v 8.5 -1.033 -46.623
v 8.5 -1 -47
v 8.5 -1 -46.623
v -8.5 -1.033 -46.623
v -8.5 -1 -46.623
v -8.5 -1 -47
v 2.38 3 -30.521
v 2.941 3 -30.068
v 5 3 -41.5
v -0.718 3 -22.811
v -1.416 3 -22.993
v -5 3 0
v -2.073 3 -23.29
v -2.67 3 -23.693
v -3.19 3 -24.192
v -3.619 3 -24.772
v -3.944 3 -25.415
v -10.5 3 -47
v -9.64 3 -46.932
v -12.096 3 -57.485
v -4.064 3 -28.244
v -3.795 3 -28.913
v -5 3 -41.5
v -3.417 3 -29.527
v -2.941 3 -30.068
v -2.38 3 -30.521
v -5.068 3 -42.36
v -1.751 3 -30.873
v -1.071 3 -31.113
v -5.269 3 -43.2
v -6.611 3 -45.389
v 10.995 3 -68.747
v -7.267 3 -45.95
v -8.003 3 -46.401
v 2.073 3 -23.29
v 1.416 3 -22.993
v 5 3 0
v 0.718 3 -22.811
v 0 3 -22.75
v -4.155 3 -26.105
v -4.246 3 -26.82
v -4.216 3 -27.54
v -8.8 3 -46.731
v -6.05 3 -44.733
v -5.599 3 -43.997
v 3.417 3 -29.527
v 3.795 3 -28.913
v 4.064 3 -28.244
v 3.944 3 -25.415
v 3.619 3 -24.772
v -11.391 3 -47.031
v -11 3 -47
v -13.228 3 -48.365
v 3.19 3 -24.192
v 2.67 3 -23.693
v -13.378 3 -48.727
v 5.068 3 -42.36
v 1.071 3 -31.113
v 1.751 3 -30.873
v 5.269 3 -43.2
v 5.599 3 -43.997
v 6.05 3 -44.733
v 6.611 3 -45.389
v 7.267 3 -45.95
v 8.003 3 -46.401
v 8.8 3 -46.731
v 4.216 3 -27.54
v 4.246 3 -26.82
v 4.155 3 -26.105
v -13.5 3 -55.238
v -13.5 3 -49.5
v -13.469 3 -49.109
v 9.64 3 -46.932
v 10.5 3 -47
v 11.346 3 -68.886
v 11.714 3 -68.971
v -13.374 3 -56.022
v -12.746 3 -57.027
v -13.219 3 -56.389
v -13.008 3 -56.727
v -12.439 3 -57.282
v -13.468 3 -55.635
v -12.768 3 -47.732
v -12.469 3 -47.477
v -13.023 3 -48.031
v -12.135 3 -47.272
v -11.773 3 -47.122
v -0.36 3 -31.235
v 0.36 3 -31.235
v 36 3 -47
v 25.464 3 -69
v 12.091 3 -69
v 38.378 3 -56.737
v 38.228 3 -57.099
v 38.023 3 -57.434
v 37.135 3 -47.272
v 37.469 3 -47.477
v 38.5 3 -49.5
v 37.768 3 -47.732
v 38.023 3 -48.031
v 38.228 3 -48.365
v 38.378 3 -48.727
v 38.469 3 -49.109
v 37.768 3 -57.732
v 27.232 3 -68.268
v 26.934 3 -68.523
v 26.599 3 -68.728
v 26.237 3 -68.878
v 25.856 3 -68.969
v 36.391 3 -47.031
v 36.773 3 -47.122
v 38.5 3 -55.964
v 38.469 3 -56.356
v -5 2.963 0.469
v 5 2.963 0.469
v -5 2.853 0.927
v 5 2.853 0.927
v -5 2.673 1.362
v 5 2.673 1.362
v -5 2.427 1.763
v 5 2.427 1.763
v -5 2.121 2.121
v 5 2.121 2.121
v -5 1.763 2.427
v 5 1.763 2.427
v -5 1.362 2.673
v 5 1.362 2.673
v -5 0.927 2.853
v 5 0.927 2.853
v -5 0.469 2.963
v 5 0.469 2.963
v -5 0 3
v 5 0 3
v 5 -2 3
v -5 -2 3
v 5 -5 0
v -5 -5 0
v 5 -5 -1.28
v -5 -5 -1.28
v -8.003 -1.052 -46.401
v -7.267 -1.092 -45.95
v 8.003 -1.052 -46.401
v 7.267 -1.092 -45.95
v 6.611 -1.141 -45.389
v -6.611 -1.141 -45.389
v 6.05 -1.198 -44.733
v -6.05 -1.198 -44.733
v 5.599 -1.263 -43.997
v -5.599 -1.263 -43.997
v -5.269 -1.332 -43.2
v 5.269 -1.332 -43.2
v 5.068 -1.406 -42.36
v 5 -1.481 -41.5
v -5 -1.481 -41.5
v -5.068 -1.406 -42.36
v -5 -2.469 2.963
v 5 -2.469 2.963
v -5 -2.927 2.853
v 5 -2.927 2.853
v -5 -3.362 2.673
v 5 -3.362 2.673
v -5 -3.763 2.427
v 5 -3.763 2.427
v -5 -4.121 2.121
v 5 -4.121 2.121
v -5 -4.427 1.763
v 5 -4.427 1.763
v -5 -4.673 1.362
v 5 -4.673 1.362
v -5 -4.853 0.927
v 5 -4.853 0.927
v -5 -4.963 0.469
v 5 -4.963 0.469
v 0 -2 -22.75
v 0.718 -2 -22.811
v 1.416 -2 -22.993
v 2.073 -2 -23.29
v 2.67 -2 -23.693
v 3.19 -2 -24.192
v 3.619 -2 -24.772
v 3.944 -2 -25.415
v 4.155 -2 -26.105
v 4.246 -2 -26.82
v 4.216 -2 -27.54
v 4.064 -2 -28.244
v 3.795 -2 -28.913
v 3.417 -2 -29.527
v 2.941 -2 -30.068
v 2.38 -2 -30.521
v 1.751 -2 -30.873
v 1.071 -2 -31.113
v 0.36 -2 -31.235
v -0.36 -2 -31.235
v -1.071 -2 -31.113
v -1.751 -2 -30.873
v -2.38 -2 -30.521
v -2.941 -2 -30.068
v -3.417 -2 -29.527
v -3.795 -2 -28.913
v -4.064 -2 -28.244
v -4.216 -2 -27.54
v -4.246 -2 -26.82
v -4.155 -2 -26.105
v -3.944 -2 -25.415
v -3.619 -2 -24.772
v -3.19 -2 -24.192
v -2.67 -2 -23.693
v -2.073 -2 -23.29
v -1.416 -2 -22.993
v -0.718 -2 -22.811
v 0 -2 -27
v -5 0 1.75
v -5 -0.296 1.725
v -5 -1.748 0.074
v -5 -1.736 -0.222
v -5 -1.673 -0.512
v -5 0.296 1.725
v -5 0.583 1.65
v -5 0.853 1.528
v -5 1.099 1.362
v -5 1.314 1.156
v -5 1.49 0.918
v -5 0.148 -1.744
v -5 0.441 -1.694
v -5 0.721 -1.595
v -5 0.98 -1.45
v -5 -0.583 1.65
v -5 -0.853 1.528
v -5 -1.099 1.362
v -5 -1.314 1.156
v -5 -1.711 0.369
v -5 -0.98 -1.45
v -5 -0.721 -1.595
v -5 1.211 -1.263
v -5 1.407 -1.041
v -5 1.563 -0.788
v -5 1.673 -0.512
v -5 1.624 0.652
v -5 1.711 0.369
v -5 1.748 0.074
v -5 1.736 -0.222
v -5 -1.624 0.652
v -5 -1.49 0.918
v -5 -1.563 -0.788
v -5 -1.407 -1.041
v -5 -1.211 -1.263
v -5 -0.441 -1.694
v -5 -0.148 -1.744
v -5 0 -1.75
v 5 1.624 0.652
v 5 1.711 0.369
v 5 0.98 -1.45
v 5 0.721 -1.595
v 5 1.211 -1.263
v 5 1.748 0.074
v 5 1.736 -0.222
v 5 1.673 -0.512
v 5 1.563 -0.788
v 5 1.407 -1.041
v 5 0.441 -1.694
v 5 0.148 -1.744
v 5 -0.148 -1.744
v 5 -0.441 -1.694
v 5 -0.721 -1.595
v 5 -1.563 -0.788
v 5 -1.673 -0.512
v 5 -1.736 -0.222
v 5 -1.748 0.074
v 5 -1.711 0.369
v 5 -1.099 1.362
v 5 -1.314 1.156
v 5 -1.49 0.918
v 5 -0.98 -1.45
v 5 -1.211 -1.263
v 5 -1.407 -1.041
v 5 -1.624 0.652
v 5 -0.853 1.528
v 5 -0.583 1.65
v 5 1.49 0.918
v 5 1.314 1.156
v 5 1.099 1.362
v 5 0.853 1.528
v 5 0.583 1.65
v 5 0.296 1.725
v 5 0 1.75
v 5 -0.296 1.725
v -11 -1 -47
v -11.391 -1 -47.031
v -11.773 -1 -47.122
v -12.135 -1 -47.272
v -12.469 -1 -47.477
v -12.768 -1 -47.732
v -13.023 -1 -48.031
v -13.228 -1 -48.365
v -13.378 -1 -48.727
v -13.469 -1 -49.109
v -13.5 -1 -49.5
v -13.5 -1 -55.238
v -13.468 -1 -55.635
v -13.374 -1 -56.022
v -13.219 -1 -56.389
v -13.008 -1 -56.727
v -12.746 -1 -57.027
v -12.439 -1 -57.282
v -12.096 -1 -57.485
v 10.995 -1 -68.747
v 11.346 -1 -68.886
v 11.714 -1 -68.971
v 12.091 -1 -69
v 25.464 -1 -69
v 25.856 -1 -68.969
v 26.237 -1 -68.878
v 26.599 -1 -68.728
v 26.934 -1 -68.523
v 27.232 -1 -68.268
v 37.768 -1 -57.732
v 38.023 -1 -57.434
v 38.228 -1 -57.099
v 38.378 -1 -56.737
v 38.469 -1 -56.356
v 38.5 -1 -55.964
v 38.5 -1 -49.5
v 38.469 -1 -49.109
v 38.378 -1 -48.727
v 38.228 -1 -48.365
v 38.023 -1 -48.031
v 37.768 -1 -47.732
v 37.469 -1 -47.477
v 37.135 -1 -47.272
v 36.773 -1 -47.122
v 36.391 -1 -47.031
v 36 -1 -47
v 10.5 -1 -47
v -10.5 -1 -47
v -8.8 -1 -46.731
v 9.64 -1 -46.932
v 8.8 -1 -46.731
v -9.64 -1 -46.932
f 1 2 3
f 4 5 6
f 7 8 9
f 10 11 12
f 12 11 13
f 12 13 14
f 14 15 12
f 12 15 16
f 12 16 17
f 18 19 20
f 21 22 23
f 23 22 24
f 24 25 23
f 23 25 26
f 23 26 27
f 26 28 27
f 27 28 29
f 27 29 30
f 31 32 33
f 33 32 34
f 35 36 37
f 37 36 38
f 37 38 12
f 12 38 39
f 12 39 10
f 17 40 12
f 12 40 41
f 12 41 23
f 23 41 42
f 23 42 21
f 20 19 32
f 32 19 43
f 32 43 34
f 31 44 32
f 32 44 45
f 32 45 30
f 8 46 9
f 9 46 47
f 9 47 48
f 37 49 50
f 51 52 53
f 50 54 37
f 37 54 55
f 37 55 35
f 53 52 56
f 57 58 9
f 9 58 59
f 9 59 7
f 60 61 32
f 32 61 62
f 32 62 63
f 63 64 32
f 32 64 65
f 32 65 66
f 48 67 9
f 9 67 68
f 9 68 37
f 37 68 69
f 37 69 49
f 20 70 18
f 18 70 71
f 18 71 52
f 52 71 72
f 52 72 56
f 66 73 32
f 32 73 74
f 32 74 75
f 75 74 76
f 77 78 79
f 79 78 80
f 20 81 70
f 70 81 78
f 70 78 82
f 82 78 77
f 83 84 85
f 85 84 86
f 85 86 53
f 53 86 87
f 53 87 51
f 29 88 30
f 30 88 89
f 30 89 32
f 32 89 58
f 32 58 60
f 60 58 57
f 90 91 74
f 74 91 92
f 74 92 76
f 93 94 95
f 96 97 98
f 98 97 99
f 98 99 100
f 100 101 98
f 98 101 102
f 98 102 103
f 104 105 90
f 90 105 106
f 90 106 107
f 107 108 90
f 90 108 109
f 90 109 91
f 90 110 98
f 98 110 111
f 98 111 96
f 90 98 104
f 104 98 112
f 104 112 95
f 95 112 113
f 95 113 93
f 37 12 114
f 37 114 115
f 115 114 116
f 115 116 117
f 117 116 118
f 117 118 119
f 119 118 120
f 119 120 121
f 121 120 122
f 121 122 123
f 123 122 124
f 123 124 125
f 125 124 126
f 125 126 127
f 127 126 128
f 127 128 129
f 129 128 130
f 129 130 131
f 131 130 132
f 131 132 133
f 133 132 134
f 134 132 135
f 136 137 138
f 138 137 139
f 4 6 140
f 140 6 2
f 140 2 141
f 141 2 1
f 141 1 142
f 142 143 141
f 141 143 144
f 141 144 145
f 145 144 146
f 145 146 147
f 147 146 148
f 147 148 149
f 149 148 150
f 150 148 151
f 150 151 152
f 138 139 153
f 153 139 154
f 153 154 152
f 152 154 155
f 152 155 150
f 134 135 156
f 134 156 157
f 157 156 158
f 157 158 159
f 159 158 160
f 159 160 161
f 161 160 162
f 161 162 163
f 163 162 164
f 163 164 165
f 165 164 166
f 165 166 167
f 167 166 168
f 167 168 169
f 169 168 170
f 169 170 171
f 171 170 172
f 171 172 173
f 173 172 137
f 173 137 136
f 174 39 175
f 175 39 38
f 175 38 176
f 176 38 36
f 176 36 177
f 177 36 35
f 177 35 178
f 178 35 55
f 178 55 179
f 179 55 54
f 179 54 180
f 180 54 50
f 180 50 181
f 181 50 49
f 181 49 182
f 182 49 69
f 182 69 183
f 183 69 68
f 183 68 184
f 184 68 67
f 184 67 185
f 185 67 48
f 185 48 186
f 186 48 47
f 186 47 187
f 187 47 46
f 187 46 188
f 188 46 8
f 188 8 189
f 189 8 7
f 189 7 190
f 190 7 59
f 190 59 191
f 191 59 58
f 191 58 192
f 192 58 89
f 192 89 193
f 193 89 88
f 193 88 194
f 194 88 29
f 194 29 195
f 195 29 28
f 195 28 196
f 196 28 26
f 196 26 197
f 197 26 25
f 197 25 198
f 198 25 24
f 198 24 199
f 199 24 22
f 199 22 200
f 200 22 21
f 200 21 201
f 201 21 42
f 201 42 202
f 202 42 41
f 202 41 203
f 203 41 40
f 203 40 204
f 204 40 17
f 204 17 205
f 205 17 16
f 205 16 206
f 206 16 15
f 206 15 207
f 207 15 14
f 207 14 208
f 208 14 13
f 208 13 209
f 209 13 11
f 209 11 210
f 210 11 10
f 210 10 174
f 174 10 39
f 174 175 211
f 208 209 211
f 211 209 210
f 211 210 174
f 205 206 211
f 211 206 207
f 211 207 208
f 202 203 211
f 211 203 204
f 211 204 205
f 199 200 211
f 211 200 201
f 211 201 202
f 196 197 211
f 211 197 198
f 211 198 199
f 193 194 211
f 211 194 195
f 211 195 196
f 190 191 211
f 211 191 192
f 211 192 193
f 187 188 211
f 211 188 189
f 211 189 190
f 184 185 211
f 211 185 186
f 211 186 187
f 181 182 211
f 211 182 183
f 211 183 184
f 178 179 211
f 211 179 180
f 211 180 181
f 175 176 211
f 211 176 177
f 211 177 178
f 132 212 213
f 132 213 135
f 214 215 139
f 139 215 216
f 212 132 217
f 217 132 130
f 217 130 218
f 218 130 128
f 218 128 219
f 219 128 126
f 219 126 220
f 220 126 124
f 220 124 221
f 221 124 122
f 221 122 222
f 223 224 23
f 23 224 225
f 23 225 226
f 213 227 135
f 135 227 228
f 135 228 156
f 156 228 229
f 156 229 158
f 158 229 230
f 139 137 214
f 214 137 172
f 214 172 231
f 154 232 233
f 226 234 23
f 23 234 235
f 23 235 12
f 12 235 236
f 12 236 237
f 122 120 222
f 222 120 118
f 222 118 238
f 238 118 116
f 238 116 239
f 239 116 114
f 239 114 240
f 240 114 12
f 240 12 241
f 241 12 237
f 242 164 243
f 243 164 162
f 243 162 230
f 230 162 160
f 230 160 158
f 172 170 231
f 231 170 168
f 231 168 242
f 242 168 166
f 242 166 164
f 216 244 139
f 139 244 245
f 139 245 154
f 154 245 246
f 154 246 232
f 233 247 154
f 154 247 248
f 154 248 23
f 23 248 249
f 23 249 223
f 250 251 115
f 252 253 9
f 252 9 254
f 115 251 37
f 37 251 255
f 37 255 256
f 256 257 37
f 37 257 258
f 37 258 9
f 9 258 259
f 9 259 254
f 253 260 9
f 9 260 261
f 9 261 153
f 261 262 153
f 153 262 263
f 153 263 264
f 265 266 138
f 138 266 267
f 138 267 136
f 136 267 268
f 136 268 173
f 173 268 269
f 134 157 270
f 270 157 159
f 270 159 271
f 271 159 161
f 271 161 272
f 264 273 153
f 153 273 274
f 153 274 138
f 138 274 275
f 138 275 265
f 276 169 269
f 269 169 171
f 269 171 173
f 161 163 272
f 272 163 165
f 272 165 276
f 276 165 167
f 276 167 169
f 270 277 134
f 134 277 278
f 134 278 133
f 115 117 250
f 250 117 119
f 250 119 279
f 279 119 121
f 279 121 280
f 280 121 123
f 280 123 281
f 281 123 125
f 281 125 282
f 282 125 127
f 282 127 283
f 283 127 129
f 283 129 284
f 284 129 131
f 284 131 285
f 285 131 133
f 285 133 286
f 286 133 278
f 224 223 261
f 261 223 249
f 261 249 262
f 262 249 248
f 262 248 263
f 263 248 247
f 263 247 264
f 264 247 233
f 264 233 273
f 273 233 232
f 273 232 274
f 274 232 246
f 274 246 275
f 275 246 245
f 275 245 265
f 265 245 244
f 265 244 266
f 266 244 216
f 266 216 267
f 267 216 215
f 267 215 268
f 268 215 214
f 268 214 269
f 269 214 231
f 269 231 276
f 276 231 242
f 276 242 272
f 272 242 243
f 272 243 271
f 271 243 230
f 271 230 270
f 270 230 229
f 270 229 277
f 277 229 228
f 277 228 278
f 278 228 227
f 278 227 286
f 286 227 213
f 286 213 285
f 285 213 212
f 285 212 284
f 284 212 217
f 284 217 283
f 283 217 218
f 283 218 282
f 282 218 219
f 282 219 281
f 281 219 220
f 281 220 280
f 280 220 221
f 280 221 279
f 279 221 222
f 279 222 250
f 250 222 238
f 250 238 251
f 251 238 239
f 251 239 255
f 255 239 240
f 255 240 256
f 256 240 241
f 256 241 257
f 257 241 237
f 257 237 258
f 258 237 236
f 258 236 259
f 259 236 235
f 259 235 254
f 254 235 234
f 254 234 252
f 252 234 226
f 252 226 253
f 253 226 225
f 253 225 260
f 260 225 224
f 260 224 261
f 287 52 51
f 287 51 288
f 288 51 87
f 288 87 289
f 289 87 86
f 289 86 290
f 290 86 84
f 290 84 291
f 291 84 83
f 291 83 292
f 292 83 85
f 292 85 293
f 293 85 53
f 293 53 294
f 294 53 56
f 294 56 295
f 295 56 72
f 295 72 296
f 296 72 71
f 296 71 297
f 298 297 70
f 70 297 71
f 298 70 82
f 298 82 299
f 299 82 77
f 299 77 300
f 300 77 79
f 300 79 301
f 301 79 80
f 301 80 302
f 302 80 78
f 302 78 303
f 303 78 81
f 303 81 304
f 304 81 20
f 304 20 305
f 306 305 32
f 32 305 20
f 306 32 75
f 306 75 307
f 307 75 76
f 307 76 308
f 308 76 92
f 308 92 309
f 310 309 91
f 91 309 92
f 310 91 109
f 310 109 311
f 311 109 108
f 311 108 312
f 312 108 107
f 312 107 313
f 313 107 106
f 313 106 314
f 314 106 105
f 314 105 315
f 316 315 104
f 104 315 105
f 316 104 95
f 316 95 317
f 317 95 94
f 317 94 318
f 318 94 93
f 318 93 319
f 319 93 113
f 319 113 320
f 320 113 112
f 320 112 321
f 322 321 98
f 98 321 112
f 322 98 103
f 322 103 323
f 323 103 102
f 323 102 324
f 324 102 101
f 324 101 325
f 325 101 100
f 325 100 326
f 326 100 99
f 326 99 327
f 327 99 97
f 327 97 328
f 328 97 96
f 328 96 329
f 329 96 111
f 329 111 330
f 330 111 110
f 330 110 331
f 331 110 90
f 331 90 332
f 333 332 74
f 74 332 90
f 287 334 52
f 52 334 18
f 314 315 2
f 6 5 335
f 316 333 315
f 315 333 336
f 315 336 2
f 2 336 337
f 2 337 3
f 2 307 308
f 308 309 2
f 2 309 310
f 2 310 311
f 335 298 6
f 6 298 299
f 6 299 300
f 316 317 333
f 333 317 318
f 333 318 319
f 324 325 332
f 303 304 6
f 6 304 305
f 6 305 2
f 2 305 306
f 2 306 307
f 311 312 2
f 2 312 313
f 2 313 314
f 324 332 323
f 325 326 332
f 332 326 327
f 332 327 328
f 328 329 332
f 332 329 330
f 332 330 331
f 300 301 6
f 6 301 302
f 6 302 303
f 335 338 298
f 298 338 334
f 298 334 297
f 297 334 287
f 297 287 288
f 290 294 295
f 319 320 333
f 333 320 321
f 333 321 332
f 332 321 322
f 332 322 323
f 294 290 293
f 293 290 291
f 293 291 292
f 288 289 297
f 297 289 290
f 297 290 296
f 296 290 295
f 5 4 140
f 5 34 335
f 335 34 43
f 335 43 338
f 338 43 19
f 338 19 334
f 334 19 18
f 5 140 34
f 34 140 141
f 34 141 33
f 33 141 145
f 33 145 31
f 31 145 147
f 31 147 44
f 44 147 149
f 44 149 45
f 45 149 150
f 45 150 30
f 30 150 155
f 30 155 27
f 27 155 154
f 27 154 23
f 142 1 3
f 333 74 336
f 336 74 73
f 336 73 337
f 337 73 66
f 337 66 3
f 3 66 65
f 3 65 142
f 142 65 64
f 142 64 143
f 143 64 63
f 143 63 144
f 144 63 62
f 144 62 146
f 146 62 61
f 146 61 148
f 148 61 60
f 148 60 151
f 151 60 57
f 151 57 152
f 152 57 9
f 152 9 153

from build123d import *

# Parameters (mm, degrees)
SKETCH1_R           = 1.75
BOSS_EXTRUDE1_DEPTH = 8.5
FILLET1_R           = 3
SKETCH3_R           = 4.25
CUT_EXTRUDE3_DEPTH  = 5
CUT_EXTRUDE4_REACH  = 50.428
BOSS_EXTRUDE2_DEPTH = 4
CUT_EXTRUDE5_REACH  = 81.418


with BuildPart() as part:
    # Sketch1 → Boss-Extrude1 (new, symmetric)
    with BuildSketch(Plane(origin=(0, 0, 0), x_dir=(0, 0, -1), z_dir=(1, 0, 0))):
        with BuildLine():
            ThreePointArc((0, 3), (-2.121320344, 2.121320344), (-3, 0))
            Line((-3, 0), (-3, -5))
            Line((-3, -5), (1.279790789, -5))
            Line((1.279790789, -5), (47, -1))
            Line((47, -1), (47, 3))
            Line((47, 3), (0, 3))
        make_face()
        Circle(SKETCH1_R, mode=Mode.SUBTRACT)
    extrude(amount=BOSS_EXTRUDE1_DEPTH, both=True)

    # Fillet1
    fillet1_edges = [part.edges().sort_by_distance(p)[0] for p in [
        (0, -5, 3),
    ]]
    fillet(fillet1_edges, radius=FILLET1_R)

    # Sketch3 → Cut-Extrude3 (cut)
    with BuildSketch(Plane(origin=(0, 3, 0), x_dir=(1, 0, 0), z_dir=(0, 1, 0))):
        with Locations(Location((0, 27, 0), (0, 0, 270))):
            Circle(SKETCH3_R)
    extrude(amount=-CUT_EXTRUDE3_DEPTH, mode=Mode.SUBTRACT)

    # Sketch4 → Cut-Extrude4 (cut, up to next)
    with BuildSketch(Plane(origin=(0, 3, 0), x_dir=(1, 0, 0), z_dir=(0, 1, 0)), mode=Mode.PRIVATE) as cut_extrude4_sk1:
        with BuildLine():
            Line((-8.5, -3), (-5, -3))
            Line((-5, -3), (-5, 32.6))
            ThreePointArc((-5, 32.6), (-5.995836944, 35.004163056), (-8.4, 36))
            Line((-8.4, 36), (-8.5, 36))
            Line((-8.5, 36), (-8.5, -3))
        make_face()
    cut_extrude4_tool1 = extrude(cut_extrude4_sk1.sketch, amount=-CUT_EXTRUDE4_REACH, mode=Mode.PRIVATE) & part.part
    # Sketch4 → Cut-Extrude4 (cut, up to next)
    with BuildSketch(Plane(origin=(0, 3, 0), x_dir=(1, 0, 0), z_dir=(0, 1, 0)), mode=Mode.PRIVATE) as cut_extrude4_sk2:
        with BuildLine():
            Line((8.4, 36), (8.5, 36))
            Line((8.5, 36), (8.5, -3))
            Line((8.5, -3), (5, -3))
            Line((5, -3), (5, 32.6))
            ThreePointArc((5, 32.6), (5.995836944, 35.004163056), (8.4, 36))
        make_face()
    cut_extrude4_tool2 = extrude(cut_extrude4_sk2.sketch, amount=-CUT_EXTRUDE4_REACH, mode=Mode.PRIVATE) & part.part
    add(cut_extrude4_tool1.solids().sort_by_distance((-6.768336, 3, -16.153098))[0], mode=Mode.SUBTRACT)
    add(cut_extrude4_tool2.solids().sort_by_distance((6.768336, 3, -16.153098))[0], mode=Mode.SUBTRACT)

    # Sketch5 → Boss-Extrude2 (add)
    with BuildSketch(Plane(origin=(0, 3, 0), x_dir=(1, 0, 0), z_dir=(0, 1, 0))):
        with BuildLine():
            ThreePointArc((-11, 47), (-12.767766953, 47.732233047), (-13.5, 49.5))
            Line((-13.5, 49.5), (-13.5, 55.23782662))
            ThreePointArc((-13.5, 55.23782662), (-13.12012024, 56.562624781), (-12.095927867, 57.484811736))
            Line((-12.095927867, 57.484811736), (10.994949478, 68.746985116))
            ThreePointArc((10.994949478, 68.746985116), (11.528499709, 68.935925162), (12.090877345, 69))
            Line((12.090877345, 69), (25.464466094, 69))
            ThreePointArc((25.464466094, 69), (26.421174675, 68.809698831), (27.232233047, 68.267766953))
            Line((27.232233047, 68.267766953), (37.767766953, 57.732233047))
            ThreePointArc((37.767766953, 57.732233047), (38.309698831, 56.921174675), (38.5, 55.964466094))
            Line((38.5, 55.964466094), (38.5, 49.5))
            ThreePointArc((38.5, 49.5), (37.767766953, 47.732233047), (36, 47))
            Line((36, 47), (8.5, 47))
            Line((8.5, 47), (-8.5, 47))
            Line((-8.5, 47), (-11, 47))
        make_face()
        with BuildLine():
            Line((10.5, 47), (8.5, 47))
            Line((8.5, 47), (8.5, 45))
            ThreePointArc((8.5, 45), (9.085786438, 46.414213562), (10.5, 47))
        make_face()
        with BuildLine():
            Line((-8.5, 45), (-8.5, 47))
            Line((-8.5, 47), (-10.5, 47))
            ThreePointArc((-10.5, 47), (-9.085786438, 46.414213562), (-8.5, 45))
        make_face()
    extrude(amount=-BOSS_EXTRUDE2_DEPTH)

    # Sketch6 → Cut-Extrude5 (cut, up to next)
    with BuildSketch(Plane(origin=(0, 3, 0), x_dir=(1, 0, 0), z_dir=(0, 1, 0)), mode=Mode.PRIVATE) as cut_extrude5_sk1:
        with BuildLine():
            Line((5, 32.6), (5, 41.5))
            ThreePointArc((5, 41.5), (6.610912703, 45.389087297), (10.5, 47))
            Line((10.5, 47), (10.5, 32.6))
            Line((10.5, 32.6), (5, 32.6))
        make_face()
    cut_extrude5_tool1 = extrude(cut_extrude5_sk1.sketch, amount=-CUT_EXTRUDE5_REACH, mode=Mode.PRIVATE) & part.part
    # Sketch6 → Cut-Extrude5 (cut, up to next)
    with BuildSketch(Plane(origin=(0, 3, 0), x_dir=(1, 0, 0), z_dir=(0, 1, 0)), mode=Mode.PRIVATE) as cut_extrude5_sk2:
        with BuildLine():
            Line((-5, 32.6), (-10.5, 32.6))
            Line((-10.5, 32.6), (-10.5, 47))
            ThreePointArc((-10.5, 47), (-6.610912703, 45.389087297), (-5, 41.5))
            Line((-5, 41.5), (-5, 32.6))
        make_face()
    cut_extrude5_tool2 = extrude(cut_extrude5_sk2.sketch, amount=-CUT_EXTRUDE5_REACH, mode=Mode.PRIVATE) & part.part
    add(cut_extrude5_tool1.solids().sort_by_distance((7.885844, 3, -39.266841))[0], mode=Mode.SUBTRACT)
    add(cut_extrude5_tool2.solids().sort_by_distance((-7.885844, 3, -39.266841))[0], mode=Mode.SUBTRACT)


solid = part.part
